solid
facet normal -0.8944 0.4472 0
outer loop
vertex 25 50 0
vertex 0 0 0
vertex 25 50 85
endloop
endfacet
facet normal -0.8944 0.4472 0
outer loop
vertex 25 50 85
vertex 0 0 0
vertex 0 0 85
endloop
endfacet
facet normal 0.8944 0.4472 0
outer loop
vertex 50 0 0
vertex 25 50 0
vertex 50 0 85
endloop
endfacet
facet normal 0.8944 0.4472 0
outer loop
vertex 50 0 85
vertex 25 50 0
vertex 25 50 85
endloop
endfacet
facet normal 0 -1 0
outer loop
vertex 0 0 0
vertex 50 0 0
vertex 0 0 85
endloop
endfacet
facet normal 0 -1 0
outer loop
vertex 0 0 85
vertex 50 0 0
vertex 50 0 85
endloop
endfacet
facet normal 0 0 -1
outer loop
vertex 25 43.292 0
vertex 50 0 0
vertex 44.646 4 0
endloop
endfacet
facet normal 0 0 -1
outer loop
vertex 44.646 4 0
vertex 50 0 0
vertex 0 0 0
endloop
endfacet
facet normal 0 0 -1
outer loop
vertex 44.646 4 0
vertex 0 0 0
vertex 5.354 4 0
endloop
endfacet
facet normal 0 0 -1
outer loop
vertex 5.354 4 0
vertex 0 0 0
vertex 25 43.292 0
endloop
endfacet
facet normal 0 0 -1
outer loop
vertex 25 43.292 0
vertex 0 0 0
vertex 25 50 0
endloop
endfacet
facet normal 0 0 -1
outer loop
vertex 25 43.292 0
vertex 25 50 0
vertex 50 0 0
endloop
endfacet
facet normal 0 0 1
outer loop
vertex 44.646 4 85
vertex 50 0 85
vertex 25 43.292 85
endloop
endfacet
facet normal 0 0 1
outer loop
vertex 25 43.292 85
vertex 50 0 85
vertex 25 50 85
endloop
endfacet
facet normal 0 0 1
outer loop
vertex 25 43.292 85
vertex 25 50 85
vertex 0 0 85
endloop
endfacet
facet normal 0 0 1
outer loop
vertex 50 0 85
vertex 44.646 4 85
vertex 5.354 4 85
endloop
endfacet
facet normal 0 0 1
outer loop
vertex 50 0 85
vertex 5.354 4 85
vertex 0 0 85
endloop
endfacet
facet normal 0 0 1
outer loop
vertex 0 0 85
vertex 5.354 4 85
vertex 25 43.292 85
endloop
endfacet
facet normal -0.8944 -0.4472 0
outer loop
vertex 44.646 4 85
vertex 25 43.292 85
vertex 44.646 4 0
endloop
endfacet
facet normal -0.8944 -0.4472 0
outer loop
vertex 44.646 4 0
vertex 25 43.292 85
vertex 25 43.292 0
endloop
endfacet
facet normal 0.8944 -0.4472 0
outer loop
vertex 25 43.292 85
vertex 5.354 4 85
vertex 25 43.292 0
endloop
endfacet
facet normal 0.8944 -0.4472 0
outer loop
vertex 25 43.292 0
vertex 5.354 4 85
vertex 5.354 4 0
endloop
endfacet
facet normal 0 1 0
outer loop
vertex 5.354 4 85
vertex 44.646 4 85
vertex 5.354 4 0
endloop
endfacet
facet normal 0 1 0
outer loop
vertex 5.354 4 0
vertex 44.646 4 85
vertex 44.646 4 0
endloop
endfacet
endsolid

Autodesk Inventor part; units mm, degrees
ref_plane "YZ Plane" through (0, 0, 0) normal (1, 0, 0) x (0, 1, 0)
ref_plane "XZ Plane" through (0, 0, 0) normal (0, 1, 0) x (-1, 0, 0)
ref_plane "XY Plane" through (0, 0, 0) normal (0, 0, 1) x (1, 0, 0)
sketch "Boceto1" plane through (0, 0, 0) normal (0, 0, 1) x (1, 0, 0)
  line L0 (0, 0) -> (50, 0)
  line L1 (50, 0) -> (50, 50)
  line L2 (50, 50) -> (0, 50)
  line L3 (0, 50) -> (0, 0)
  line L4 (0, 0) -> (25, 50)
  line L5 (50, 0) -> (25, 50)
  dimension "d0" = 50
  dimension "d1" = 50
extrude "Extrusión1" add sketch "Boceto1" along normal blind 85 contours L4 L5 L0
sketch "Boceto2" plane through (0, 0, 85) normal (0, 0, 1) x (1, 0, 0)
  line L0 (25, 4) -> (47.7159, 4)
  line L1 (50, 0) -> (25, 50) projected
  line L2 (37.5, 25) -> (38.8416, 22.3167)
  line L3 (38.8416, 22.3167) -> (36.1584, 20.9751)
  line L4 (36.1584, 20.9751) -> (44.6459, 4)
  line L5 (25, 4) -> (2, 4)
  line L6 (25, 50) -> (0, 0) projected
  line L7 (11.1584, 22.3167) -> (13.8416, 20.9751)
  line L8 (13.8416, 20.9751) -> (5.3541, 4)
  line L9 (13.8416, 20.9751) -> (25, 43.2918)
  line L10 (25, 43.2918) -> (36.1584, 20.9751)
  dimension "d4" = 3
  dimension "d5" = 3
  dimension "d6" = 3
extrude "Extrusión2" cut sketch "Boceto2" against normal blind 85 contours L5 L8 L9 L10 L4 L0
properties part number "Aspax2"
